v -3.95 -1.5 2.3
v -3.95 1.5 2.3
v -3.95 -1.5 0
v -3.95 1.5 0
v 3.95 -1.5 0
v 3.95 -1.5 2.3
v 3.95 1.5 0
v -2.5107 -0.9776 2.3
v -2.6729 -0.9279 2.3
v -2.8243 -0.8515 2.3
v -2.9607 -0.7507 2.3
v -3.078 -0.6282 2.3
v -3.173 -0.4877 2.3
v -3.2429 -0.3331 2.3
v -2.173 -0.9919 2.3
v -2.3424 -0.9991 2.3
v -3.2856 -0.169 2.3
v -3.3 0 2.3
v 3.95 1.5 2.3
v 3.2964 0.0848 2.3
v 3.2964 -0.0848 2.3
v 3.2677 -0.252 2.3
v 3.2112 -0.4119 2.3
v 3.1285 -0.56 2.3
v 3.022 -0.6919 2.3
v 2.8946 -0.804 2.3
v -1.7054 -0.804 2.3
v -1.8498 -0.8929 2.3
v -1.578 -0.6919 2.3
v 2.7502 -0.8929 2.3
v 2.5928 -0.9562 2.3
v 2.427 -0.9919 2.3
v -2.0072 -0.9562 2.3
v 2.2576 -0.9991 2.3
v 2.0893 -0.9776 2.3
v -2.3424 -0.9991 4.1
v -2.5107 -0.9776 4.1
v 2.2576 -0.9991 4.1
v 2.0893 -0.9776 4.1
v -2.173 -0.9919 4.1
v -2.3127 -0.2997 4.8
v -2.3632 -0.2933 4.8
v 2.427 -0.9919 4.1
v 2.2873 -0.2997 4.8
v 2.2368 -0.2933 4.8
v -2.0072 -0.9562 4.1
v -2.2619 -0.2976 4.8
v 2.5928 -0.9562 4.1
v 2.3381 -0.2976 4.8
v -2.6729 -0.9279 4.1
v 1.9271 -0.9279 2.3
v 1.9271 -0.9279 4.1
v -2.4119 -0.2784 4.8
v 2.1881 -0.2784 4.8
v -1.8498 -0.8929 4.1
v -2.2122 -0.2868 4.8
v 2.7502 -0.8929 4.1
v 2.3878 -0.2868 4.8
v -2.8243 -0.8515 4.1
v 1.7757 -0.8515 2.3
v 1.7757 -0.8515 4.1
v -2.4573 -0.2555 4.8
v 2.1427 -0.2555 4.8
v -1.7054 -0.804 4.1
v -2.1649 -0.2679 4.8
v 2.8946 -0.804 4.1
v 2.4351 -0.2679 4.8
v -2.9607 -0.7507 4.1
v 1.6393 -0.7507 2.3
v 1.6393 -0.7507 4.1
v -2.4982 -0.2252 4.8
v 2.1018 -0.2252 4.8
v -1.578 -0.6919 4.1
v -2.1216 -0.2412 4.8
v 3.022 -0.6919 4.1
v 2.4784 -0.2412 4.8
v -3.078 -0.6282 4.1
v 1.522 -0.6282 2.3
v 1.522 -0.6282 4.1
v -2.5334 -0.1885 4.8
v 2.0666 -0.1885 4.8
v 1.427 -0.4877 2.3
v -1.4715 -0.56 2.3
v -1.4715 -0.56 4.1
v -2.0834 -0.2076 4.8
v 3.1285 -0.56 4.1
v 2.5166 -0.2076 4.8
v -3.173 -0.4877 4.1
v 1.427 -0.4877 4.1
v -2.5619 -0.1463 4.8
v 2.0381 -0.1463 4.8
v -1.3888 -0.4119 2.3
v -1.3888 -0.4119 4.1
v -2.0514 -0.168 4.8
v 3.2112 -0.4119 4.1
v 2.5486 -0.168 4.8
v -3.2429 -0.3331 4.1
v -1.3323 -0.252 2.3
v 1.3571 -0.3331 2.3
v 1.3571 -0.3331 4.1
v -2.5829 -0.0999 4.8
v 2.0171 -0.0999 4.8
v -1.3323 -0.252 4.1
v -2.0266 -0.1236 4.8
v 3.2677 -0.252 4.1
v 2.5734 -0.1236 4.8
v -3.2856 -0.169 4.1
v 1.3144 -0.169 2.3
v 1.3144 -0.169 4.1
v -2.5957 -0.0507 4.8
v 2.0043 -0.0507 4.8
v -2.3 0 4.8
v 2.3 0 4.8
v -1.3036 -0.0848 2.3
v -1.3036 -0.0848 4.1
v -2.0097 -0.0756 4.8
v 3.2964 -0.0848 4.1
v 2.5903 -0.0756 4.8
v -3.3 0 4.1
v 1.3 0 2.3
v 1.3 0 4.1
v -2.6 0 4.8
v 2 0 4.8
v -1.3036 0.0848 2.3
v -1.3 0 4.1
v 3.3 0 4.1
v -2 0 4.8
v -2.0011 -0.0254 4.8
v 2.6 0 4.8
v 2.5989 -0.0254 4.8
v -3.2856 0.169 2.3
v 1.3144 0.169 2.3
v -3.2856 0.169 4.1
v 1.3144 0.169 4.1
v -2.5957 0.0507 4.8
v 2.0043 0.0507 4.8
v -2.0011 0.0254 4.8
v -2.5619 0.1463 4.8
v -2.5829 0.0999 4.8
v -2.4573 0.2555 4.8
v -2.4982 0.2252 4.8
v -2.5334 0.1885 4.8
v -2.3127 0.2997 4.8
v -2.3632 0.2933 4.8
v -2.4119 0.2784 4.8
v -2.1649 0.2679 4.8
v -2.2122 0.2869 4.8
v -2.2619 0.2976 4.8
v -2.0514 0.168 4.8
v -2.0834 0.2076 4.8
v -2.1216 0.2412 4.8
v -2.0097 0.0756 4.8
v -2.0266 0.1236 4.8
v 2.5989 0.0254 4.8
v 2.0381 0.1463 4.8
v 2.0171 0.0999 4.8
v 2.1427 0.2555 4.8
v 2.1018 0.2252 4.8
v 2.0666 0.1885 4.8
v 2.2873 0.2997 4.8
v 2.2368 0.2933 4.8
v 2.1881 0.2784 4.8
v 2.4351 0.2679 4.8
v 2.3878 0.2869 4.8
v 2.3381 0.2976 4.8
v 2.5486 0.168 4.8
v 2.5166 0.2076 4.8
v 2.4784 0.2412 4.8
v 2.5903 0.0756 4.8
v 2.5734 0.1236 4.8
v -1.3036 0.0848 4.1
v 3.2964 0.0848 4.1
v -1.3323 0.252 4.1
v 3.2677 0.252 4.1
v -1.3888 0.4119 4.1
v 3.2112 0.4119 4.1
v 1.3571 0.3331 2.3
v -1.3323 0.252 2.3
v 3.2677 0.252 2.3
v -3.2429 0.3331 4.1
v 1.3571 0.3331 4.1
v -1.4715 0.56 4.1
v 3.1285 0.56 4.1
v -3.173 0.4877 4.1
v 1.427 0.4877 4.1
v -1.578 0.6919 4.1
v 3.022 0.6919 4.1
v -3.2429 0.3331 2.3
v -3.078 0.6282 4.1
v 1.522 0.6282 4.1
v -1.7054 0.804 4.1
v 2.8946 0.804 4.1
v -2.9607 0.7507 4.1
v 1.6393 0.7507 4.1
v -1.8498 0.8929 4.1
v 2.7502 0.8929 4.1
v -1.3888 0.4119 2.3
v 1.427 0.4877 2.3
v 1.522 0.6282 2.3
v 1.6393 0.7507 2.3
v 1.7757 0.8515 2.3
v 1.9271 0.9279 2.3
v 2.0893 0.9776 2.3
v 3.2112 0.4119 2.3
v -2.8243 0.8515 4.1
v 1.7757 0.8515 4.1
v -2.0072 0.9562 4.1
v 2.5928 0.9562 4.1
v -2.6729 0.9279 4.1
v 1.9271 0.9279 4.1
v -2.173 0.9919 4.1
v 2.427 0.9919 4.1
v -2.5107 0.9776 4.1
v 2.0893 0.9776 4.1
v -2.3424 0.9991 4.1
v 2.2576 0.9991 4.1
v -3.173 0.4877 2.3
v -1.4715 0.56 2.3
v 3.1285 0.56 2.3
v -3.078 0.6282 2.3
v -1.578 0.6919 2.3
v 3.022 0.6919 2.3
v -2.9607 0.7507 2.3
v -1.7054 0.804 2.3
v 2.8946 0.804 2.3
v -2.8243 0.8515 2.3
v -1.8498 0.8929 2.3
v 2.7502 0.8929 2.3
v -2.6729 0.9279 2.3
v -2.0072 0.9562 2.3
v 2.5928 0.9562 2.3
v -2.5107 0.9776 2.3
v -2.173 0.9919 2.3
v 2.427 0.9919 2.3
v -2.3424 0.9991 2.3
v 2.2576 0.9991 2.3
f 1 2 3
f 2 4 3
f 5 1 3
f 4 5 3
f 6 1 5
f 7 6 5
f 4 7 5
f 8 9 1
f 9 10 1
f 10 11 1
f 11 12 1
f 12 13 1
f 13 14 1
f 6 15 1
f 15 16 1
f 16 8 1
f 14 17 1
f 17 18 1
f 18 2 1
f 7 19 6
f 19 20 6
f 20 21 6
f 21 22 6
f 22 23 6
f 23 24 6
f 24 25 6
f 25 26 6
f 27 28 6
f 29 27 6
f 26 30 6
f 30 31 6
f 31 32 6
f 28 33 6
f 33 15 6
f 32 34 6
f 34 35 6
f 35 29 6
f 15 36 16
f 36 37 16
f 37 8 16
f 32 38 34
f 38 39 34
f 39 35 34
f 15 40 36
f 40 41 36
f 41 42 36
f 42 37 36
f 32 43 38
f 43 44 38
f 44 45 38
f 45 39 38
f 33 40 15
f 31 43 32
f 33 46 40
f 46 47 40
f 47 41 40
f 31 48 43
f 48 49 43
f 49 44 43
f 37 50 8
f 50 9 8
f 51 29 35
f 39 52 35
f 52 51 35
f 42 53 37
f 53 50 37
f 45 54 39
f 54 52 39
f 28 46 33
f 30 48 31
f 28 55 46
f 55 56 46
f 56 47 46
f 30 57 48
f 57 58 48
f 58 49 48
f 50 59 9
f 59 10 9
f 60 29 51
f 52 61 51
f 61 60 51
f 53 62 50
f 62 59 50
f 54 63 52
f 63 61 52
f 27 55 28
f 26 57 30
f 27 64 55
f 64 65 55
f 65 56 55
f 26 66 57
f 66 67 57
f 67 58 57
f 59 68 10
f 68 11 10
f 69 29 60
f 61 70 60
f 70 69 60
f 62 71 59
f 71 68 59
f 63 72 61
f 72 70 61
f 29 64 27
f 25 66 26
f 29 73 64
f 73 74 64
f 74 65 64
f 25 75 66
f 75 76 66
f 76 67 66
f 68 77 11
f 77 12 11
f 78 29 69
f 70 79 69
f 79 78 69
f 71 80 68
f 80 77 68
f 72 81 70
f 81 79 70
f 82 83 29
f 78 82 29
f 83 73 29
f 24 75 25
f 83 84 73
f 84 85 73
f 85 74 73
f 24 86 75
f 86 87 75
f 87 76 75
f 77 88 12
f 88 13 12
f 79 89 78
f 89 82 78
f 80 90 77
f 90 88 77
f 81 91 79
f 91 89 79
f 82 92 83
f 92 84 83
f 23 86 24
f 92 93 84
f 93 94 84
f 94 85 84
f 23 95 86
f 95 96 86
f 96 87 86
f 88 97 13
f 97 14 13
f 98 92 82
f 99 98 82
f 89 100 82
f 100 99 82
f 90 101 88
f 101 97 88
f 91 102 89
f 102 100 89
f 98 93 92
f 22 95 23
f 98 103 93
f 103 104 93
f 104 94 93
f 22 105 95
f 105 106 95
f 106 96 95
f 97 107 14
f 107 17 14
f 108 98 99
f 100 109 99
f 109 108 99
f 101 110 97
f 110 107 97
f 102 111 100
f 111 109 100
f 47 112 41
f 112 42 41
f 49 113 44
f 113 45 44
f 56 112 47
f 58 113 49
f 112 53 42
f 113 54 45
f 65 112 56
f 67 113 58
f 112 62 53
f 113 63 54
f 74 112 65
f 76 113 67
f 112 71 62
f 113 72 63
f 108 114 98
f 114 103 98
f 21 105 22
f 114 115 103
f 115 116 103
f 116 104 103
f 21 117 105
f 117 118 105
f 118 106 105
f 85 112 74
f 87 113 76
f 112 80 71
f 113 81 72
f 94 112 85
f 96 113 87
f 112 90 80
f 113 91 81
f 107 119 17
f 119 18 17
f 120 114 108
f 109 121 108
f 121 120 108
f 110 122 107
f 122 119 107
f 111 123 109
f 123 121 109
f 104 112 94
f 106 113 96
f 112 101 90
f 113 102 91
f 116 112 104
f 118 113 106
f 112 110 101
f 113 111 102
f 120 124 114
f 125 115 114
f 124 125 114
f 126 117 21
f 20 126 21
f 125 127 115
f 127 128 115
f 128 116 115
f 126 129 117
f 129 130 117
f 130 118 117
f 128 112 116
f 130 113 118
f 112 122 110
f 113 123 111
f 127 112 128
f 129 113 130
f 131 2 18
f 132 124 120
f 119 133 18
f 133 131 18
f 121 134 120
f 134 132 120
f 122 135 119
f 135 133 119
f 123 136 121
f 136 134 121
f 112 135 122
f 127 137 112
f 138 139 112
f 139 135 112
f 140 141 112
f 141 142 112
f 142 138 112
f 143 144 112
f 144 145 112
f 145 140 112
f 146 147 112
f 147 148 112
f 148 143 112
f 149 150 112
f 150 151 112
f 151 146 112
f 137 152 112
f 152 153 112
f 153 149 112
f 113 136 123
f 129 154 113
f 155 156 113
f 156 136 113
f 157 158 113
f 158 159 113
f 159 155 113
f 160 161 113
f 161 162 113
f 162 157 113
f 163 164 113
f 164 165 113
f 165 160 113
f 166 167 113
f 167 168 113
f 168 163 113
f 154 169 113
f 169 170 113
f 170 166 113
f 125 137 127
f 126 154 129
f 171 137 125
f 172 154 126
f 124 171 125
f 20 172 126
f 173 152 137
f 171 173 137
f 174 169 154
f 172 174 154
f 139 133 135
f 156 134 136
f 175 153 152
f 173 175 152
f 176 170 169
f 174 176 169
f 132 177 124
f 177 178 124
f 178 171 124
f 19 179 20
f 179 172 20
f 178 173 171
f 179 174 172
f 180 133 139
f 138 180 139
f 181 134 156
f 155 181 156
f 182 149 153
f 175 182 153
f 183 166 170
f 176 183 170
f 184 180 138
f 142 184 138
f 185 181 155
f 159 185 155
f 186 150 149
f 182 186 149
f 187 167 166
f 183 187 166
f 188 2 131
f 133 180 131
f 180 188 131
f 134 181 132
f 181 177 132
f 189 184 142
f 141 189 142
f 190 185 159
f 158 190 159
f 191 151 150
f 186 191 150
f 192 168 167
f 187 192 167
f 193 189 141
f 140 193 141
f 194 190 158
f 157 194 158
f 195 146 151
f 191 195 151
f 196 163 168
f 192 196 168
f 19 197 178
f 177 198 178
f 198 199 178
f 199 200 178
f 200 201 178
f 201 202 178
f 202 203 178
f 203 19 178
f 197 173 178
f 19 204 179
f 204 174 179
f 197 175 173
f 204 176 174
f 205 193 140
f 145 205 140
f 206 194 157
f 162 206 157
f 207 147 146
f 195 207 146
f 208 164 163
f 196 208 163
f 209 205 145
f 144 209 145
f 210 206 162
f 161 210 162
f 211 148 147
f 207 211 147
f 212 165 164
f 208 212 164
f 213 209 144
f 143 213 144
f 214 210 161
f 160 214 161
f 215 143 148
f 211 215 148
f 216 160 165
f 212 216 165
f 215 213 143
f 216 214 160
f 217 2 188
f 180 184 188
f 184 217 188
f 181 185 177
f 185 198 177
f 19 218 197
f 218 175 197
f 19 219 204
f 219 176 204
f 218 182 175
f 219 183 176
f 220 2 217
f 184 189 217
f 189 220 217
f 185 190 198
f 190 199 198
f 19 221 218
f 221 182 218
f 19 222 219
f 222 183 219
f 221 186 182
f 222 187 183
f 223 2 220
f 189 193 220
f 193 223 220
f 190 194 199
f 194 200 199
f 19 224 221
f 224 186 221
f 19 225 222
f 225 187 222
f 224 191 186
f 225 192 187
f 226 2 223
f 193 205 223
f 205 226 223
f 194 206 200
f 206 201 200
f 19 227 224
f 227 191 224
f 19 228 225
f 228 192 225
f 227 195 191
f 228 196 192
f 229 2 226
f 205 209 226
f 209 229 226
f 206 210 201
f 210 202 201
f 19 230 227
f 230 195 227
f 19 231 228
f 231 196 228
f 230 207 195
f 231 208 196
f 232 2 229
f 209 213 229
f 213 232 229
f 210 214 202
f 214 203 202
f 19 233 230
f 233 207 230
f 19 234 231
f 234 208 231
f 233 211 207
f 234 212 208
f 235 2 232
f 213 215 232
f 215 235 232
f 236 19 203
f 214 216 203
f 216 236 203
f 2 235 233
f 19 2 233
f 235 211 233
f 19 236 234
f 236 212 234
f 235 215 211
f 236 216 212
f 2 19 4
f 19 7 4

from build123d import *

# Parameters (mm, degrees)
SKICA1_W                = 7.9
SKICA1_H                = 3
P_IDAT_VYSUNUT_M1_DEPTH = 2.3
SKICA2_R                = 1
P_IDAT_VYSUNUT_M2_DEPTH = 2.5
ZKOSEN_2_SIZE           = 0.7


with BuildPart() as part:
    # Skica1 → Přidat vysunutím1 (new body)
    with BuildSketch(Plane.XY):
        Rectangle(SKICA1_W, SKICA1_H)
    extrude(amount=P_IDAT_VYSUNUT_M1_DEPTH)

    # Skica2 → Přidat vysunutím2 (add)
    with BuildSketch(Plane.XY.offset(2.3)):
        with Locations((-2.3, 0)):
            Circle(SKICA2_R)
        with Locations((2.3, 0)):
            Circle(SKICA2_R)
    extrude(amount=P_IDAT_VYSUNUT_M2_DEPTH)

    # Zkosení2
    zkosen_2_edges = [part.edges().sort_by_distance(p)[0] for p in [
        (-3.3, 0, 4.8),
        (1.3, 0, 4.8),
    ]]
    chamfer(zkosen_2_edges, length=ZKOSEN_2_SIZE)


solid = part.part
